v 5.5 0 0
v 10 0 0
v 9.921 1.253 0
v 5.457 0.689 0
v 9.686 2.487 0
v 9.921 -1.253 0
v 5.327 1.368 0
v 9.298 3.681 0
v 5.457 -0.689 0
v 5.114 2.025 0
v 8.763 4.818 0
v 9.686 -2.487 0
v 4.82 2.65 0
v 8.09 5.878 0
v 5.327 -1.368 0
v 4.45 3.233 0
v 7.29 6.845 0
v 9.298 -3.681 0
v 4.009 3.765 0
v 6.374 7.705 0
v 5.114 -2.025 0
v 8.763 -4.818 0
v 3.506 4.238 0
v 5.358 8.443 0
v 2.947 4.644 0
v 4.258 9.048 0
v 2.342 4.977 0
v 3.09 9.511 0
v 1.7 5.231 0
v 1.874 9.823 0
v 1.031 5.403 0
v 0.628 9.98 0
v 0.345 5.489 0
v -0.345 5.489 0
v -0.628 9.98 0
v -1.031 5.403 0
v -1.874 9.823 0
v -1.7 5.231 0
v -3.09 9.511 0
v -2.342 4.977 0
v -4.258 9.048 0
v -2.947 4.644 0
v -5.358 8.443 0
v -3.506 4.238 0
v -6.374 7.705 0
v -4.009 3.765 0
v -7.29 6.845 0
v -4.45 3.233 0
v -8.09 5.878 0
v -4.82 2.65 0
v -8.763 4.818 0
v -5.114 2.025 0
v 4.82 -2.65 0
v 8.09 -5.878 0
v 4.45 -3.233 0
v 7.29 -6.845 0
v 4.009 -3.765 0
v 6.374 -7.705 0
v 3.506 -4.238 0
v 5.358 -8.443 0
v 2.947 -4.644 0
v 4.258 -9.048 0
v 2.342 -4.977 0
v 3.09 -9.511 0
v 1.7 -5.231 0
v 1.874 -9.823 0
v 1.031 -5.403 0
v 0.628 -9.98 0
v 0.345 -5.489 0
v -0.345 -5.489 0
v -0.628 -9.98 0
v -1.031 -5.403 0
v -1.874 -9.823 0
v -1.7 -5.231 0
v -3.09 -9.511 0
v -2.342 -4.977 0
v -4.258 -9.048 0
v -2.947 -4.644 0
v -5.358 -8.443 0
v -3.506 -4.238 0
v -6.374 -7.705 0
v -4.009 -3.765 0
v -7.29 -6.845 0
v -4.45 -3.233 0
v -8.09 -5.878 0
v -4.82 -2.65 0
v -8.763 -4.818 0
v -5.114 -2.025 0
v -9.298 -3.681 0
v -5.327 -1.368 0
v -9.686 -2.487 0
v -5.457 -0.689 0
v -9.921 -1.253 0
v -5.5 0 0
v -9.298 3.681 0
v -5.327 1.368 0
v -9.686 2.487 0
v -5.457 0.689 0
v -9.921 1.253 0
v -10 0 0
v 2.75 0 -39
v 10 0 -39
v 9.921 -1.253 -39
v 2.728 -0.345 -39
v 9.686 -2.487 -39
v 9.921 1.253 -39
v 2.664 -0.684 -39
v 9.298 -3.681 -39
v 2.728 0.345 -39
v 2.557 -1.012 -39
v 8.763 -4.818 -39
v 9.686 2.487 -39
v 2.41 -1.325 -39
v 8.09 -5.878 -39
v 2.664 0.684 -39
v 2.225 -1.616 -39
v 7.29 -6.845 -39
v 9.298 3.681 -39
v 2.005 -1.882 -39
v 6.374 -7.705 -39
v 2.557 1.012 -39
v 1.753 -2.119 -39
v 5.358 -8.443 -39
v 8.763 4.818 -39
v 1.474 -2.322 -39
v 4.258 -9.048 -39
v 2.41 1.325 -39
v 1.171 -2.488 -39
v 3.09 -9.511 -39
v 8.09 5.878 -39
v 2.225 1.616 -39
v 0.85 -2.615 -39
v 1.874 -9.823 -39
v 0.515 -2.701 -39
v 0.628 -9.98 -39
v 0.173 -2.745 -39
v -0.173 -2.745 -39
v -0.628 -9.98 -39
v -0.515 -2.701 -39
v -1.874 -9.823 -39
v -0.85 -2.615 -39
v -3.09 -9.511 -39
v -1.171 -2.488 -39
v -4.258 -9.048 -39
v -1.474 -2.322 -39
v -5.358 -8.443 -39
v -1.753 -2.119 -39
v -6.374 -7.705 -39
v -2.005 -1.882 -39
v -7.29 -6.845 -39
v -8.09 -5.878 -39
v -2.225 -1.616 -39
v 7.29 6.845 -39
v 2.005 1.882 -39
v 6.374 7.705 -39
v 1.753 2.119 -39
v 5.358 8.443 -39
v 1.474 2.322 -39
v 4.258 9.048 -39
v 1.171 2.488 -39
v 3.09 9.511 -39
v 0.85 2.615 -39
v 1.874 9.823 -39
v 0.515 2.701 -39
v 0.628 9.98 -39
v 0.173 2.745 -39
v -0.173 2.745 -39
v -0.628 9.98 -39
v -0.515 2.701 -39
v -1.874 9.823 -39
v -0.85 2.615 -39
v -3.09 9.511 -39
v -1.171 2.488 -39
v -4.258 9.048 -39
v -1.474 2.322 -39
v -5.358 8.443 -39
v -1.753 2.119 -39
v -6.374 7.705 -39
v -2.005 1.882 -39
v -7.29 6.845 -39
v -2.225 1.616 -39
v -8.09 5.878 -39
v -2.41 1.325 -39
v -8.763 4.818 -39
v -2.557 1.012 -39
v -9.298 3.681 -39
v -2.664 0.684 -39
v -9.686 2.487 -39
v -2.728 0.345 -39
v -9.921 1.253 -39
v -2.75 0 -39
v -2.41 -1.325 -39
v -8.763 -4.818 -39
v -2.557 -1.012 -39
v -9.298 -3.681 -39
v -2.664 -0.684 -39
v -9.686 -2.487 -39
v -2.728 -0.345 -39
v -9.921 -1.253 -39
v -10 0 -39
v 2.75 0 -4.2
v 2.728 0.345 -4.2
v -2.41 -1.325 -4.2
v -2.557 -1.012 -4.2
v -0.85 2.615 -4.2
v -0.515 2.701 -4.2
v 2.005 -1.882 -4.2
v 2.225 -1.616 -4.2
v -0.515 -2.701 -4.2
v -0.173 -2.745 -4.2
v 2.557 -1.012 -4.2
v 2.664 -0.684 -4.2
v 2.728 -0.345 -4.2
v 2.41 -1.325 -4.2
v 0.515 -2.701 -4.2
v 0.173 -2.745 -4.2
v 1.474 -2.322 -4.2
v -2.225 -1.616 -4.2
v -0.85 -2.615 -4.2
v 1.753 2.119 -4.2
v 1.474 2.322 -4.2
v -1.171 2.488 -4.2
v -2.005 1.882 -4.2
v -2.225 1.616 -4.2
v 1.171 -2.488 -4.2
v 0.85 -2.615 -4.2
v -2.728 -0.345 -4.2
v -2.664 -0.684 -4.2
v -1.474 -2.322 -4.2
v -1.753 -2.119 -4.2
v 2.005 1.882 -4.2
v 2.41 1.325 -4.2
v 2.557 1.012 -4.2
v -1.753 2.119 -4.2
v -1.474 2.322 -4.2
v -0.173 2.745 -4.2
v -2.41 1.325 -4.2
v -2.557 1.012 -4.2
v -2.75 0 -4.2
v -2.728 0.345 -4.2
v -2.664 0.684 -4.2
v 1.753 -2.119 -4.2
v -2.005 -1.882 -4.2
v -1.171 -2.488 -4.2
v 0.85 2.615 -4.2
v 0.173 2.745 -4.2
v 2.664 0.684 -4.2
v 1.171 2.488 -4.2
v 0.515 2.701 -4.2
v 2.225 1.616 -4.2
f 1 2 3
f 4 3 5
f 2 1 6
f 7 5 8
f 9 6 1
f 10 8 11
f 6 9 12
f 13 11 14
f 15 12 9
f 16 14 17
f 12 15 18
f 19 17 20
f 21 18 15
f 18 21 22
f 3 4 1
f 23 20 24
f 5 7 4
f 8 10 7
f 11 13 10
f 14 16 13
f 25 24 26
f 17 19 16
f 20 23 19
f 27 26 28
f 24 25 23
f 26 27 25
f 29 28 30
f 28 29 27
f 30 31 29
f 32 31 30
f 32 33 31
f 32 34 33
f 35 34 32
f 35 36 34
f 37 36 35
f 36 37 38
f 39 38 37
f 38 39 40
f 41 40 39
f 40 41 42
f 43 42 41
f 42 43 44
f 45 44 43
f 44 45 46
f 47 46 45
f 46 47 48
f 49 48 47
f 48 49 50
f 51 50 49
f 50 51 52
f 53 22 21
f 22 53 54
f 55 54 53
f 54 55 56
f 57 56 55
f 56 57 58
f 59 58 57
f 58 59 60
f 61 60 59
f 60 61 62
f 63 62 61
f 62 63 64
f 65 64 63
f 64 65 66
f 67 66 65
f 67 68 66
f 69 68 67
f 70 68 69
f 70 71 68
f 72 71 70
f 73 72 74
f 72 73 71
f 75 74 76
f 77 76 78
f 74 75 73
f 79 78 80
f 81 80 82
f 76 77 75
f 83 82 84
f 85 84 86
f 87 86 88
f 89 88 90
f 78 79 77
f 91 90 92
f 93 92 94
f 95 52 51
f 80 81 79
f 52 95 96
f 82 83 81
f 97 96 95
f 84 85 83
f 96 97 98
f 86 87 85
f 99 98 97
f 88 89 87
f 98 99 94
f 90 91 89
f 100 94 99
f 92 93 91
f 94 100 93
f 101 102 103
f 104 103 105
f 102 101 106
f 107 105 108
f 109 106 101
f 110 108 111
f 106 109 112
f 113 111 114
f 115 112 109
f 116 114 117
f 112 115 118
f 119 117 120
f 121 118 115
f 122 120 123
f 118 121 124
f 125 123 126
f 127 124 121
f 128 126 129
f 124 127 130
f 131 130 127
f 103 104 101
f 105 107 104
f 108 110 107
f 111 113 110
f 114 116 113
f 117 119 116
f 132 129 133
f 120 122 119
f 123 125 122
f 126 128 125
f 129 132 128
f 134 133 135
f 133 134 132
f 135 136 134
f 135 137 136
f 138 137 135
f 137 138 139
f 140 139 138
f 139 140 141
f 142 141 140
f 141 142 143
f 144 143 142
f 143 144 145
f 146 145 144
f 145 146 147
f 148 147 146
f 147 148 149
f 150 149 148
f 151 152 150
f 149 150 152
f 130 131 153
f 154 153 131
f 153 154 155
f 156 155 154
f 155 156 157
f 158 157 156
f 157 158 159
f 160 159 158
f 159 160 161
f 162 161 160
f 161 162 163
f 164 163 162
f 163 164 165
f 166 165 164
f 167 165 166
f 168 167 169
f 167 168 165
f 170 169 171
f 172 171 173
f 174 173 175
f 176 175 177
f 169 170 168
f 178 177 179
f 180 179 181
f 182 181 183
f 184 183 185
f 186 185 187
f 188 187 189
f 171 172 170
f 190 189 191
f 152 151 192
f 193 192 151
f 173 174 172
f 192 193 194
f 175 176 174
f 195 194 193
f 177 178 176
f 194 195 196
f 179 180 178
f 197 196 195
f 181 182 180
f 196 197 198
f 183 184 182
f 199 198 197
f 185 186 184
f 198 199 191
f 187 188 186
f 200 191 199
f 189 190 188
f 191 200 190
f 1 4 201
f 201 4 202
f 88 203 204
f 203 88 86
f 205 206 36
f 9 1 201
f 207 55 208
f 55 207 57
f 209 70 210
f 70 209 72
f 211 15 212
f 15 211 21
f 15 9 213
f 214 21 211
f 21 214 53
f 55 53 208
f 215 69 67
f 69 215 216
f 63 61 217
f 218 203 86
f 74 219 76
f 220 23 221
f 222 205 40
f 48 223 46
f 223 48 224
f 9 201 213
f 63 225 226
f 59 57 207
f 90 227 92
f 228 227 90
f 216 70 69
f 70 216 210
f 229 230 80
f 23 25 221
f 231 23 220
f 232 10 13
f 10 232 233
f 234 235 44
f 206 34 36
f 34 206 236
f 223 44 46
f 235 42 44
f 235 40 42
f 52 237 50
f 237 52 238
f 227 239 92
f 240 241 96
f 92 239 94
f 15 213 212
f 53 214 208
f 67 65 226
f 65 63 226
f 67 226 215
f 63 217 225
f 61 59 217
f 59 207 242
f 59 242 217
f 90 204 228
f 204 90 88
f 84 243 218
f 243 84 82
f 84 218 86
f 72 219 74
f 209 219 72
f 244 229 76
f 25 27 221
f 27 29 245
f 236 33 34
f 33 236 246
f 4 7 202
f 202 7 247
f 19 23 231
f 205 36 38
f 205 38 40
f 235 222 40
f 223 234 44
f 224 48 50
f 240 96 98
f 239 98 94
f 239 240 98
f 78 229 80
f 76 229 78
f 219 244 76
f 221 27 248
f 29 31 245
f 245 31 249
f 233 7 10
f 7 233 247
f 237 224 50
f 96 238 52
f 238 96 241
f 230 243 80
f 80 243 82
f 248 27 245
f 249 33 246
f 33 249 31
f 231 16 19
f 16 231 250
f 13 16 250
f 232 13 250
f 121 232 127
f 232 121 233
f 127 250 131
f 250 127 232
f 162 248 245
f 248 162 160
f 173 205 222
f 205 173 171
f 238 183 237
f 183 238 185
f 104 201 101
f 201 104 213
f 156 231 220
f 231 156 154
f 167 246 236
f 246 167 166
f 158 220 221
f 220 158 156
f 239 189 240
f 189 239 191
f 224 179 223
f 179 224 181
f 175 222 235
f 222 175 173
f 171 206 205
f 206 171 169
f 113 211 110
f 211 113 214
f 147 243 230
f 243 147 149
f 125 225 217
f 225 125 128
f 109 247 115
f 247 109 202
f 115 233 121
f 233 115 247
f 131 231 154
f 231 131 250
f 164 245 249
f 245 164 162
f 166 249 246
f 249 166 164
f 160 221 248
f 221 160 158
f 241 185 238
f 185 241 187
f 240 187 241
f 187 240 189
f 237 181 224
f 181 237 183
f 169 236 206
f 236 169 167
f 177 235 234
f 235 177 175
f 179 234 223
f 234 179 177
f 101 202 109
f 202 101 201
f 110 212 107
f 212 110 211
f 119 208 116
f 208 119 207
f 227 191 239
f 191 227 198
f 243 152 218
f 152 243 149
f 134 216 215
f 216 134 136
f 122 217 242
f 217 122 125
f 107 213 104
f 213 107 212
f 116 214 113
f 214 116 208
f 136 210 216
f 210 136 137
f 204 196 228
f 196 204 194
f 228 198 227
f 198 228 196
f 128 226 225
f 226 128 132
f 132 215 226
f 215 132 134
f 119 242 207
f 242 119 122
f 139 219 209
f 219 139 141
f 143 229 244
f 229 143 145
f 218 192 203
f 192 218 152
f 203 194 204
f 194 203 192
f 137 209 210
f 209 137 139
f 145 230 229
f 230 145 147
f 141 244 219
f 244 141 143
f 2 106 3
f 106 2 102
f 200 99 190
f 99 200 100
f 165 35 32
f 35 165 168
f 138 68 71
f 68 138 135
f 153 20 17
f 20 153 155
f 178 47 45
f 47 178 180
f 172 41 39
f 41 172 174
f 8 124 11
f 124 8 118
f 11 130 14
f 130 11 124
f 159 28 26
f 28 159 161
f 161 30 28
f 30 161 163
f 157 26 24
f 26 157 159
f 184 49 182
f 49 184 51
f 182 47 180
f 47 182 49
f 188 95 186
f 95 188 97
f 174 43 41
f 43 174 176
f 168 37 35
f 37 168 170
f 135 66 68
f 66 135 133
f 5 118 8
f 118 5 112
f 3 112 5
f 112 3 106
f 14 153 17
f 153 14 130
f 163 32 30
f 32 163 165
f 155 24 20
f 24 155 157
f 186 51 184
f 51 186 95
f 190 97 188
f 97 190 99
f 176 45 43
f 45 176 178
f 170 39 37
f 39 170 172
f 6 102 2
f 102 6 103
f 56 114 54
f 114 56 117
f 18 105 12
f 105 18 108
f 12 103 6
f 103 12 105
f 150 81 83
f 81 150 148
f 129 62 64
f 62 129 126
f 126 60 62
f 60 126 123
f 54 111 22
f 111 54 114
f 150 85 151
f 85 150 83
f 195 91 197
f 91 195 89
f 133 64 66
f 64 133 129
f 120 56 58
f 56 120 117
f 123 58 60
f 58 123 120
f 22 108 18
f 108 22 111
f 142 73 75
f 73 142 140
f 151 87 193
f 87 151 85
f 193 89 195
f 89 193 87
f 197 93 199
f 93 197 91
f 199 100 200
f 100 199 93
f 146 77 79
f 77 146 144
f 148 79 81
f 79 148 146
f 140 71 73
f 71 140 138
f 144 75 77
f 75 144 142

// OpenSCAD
$fn = 50;


difference() {
	union() {
		translate(v = [0, 0, -39.0000000000]) {
			cylinder(h = 39, r = 10.0000000000);
		}
		cylinder(h = 0, r = 20.0000000000);
	}
	union() {
		translate(v = [0, 0, 0]) {
			rotate(a = [0, 0, 0]) {
				difference() {
					union() {
						#translate(v = [0, 0, -39.0000000000]) {
							cylinder(h = 39, r = 2.2500000000);
						}
						#translate(v = [0, 0, -4.2000000000]) {
							cylinder(h = 4.2000000000, r = 10.0000000000, r1 = 2.7500000000, r2 = 5.5000000000);
						}
						#translate(v = [0, 0, -39.0000000000]) {
							cylinder(h = 39, r = 2.7500000000);
						}
						#translate(v = [0, 0, -39.0000000000]) {
							cylinder(h = 39, r = 2.2500000000);
						}
					}
					union();
				}
			}
		}
	}
}
